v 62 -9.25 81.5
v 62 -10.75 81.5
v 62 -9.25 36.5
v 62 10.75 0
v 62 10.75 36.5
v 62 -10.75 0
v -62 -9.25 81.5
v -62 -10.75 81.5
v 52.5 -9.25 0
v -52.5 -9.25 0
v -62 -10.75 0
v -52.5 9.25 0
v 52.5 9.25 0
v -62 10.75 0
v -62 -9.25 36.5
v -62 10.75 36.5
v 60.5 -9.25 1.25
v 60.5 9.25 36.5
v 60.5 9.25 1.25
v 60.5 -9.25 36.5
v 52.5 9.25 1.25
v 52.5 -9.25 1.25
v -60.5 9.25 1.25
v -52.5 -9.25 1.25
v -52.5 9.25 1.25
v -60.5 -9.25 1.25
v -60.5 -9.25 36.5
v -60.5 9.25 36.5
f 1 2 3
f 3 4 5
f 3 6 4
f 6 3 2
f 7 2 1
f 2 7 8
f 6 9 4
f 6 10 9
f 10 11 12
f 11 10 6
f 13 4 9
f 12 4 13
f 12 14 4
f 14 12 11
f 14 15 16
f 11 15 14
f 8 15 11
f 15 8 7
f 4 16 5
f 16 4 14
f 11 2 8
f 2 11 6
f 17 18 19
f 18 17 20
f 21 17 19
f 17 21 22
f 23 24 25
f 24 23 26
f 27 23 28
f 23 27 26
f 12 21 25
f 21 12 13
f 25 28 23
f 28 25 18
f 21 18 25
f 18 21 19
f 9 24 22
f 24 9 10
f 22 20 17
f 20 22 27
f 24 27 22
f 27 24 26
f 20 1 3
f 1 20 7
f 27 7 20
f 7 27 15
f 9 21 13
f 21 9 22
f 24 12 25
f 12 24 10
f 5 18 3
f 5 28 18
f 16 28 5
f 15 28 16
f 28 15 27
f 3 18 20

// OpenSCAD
INSIDE_WIDTH = 121;
SIDE_SPACER = 8;
INSIDE_HEIGHT = 80;
SIDE_HEIGHT = 35;
INSIDE_DEPTH = 18.5;
WALL_WIDTH = 1.5;
SKIM = .5;

totalWidth = INSIDE_WIDTH + WALL_WIDTH * 2;
totalHeight = INSIDE_HEIGHT + WALL_WIDTH;
totalDepth = INSIDE_DEPTH + WALL_WIDTH * 2;

difference() {
    translate([0, 0, totalHeight / 2])
    difference() {
        cube([totalWidth, totalDepth, totalHeight], center = true);
        translate([0, 0, WALL_WIDTH / 2])
        cube([INSIDE_WIDTH, INSIDE_DEPTH, INSIDE_HEIGHT + SKIM], center = true);
    }
    
    cutout_width = INSIDE_WIDTH - SIDE_SPACER * 2;
    translate([-cutout_width / 2, -INSIDE_DEPTH / 2, -SKIM])
    cube([cutout_width, INSIDE_DEPTH, WALL_WIDTH + SKIM * 2]);

    topDepth = INSIDE_DEPTH + WALL_WIDTH + SKIM;
    translate([-totalWidth / 2 - SKIM, (-topDepth / 2) + WALL_WIDTH / 2 + SKIM / 2, SIDE_HEIGHT + WALL_WIDTH])
    cube([totalWidth + SKIM * 2, topDepth, totalHeight - SIDE_HEIGHT + SKIM]);
}
